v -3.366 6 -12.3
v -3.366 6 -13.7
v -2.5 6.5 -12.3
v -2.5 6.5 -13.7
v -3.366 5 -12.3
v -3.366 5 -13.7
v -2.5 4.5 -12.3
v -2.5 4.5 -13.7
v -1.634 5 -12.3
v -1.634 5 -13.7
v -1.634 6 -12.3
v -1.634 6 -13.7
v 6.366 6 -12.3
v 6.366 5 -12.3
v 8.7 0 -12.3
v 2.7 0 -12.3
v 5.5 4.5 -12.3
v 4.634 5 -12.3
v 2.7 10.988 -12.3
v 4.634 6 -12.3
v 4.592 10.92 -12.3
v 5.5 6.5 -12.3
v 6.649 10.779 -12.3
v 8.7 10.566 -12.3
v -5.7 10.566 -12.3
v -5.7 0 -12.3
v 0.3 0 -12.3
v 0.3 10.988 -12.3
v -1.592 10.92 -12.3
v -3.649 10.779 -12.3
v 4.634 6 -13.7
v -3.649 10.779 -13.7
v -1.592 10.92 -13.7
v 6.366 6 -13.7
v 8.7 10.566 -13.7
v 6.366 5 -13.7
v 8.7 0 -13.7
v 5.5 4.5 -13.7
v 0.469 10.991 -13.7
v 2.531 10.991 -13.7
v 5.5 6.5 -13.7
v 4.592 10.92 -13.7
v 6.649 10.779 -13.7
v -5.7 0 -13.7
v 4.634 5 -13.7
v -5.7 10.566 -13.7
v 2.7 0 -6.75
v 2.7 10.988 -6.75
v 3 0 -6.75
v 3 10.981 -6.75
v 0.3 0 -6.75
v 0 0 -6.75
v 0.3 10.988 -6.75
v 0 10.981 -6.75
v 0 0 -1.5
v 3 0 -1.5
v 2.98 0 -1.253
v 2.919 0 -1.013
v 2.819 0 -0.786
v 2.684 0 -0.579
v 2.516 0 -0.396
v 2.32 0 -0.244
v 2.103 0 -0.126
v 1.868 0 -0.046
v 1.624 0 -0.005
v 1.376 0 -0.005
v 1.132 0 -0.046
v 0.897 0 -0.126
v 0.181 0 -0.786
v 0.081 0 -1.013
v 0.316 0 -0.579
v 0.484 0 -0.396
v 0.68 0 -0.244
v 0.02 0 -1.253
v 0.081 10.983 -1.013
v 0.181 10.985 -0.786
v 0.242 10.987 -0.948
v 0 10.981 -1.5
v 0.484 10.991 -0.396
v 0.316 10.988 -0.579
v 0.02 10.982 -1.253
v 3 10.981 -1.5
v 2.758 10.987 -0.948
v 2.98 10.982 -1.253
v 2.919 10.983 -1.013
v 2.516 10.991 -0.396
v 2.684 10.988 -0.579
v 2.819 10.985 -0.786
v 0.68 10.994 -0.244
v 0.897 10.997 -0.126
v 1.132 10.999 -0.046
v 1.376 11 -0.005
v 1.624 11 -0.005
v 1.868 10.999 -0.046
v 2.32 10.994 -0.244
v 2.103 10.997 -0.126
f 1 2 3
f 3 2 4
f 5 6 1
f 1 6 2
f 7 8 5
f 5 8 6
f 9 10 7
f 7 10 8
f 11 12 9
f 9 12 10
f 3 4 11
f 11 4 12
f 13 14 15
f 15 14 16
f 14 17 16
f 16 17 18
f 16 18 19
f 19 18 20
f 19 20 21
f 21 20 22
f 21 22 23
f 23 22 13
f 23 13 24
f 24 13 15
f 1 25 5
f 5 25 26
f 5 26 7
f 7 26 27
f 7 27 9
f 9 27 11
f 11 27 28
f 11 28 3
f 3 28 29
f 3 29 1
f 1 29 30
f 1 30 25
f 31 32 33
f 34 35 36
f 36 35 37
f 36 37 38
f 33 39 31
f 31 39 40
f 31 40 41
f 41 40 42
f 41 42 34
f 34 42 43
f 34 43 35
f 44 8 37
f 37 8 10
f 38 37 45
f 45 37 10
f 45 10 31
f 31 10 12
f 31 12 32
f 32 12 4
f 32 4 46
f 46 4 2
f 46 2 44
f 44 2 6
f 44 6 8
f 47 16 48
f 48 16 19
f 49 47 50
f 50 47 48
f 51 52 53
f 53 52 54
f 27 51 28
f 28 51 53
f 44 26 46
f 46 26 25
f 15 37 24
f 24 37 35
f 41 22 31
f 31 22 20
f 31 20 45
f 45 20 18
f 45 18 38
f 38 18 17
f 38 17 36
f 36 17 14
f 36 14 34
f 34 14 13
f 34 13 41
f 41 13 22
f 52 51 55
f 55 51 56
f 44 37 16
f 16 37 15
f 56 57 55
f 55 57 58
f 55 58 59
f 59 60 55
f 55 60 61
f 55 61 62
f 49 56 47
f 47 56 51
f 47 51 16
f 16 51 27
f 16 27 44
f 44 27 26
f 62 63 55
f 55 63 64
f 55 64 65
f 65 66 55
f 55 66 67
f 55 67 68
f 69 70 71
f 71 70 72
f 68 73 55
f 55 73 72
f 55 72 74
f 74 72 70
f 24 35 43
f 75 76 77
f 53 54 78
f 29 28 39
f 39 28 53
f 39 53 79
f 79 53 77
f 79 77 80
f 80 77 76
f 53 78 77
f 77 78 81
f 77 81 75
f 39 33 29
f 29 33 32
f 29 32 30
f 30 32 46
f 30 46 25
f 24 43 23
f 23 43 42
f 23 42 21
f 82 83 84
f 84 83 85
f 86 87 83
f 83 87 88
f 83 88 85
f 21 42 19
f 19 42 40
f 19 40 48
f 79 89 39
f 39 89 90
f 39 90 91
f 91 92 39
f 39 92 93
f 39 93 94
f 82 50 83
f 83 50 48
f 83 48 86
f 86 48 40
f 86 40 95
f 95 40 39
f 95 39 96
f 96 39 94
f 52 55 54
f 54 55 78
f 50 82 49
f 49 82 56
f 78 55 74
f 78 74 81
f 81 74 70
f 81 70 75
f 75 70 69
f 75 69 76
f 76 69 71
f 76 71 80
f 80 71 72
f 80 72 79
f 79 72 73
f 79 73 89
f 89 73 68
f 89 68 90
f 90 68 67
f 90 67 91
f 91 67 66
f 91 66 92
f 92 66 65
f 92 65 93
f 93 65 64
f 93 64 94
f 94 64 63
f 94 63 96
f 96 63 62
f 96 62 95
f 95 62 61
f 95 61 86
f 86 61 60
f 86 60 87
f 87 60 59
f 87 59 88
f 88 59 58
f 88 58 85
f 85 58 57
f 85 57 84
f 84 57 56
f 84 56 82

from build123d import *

# Parameters (mm, degrees)
BOSS_EXTRUDE1_DEPTH = 11
CUT_EXTRUDE1_DEPTH  = 20.949937343
CUT_EXTRUDE2_DEPTH  = 19.601075238
CUT_EXTRUDE3_DEPTH  = 20.949937343
CUT_EXTRUDE4_DEPTH  = 20.949937514


with BuildPart() as part:
    # Sketch1 → Boss-Extrude1 (new body)
    with BuildSketch(Plane(origin=(0, 0, 0), x_dir=(1, 0, 0), z_dir=(0, 1, 0))):
        Polygon((0, 0), (0, 12), (-6, 12), (-6, 14), (9, 14), (9, 12), (3, 12), (3, 0), align=None)
    extrude(amount=BOSS_EXTRUDE1_DEPTH)

    # Sketch3 → Cut-Extrude1 (cut, through all)
    with BuildSketch(Plane(origin=(0, 0, -14), x_dir=(-1, 0, 0), z_dir=(0, 0, -1))):
        with BuildLine():
            Line((-9, 11), (-9, 10.529404499))
            ThreePointArc((-9, 10.529404499), (-5.257374753, 10.882235554), (-1.5, 11))
            Line((-1.5, 11), (-9, 11))
        make_face()
        with BuildLine():
            Line((6, 11), (-1.5, 11))
            ThreePointArc((-1.5, 11), (2.257374753, 10.882235554), (6, 10.529404499))
            Line((6, 10.529404499), (6, 11))
        make_face()
    extrude(amount=-CUT_EXTRUDE1_DEPTH, mode=Mode.SUBTRACT)

    # Sketch4 → Cut-Extrude2 (cut, through all)
    with BuildSketch(Plane.XY.offset(-12)):
        Polygon((-2.5, 6.5), (-3.366025404, 6), (-3.366025404, 5), (-2.5, 4.5), (-1.633974596, 5), (-1.633974596, 6), align=None)
        Polygon((5.5, 6.5), (4.633974596, 6), (4.633974596, 5), (5.5, 4.5), (6.366025404, 5), (6.366025404, 6), align=None)
    extrude(amount=-CUT_EXTRUDE2_DEPTH, mode=Mode.SUBTRACT)

    # Sketch7 → Cut-Extrude3 (cut, through all)
    with BuildSketch(Plane.XZ):
        with BuildLine():
            ThreePointArc((0, -1.5), (0.439339828, -0.439339828), (1.5, 0))
            Line((1.5, 0), (0, 0))
            Line((0, 0), (0, -1.5))
        make_face()
        with BuildLine():
            Line((3, -1.5), (3, 0))
            Line((3, 0), (1.5, 0))
            ThreePointArc((1.5, 0), (2.560660172, -0.439339828), (3, -1.5))
        make_face()
    extrude(amount=-CUT_EXTRUDE3_DEPTH, mode=Mode.SUBTRACT)

    # Sketch8 → Cut-Extrude4 (cut, through all)
    with BuildSketch(Plane.XZ):
        Polygon((0.3, -6.75), (0, -6.75), (0, -12), (-6, -12), (-6, -14), (9, -14), (9, -12), (3, -12), (3, -6.75), (2.7, -6.75), (2.7, -12.3), (8.7, -12.3), (8.7, -13.7), (-5.7, -13.7), (-5.7, -12.3), (0.3, -12.3), align=None)
    extrude(amount=-CUT_EXTRUDE4_DEPTH, mode=Mode.SUBTRACT)


solid = part.part
